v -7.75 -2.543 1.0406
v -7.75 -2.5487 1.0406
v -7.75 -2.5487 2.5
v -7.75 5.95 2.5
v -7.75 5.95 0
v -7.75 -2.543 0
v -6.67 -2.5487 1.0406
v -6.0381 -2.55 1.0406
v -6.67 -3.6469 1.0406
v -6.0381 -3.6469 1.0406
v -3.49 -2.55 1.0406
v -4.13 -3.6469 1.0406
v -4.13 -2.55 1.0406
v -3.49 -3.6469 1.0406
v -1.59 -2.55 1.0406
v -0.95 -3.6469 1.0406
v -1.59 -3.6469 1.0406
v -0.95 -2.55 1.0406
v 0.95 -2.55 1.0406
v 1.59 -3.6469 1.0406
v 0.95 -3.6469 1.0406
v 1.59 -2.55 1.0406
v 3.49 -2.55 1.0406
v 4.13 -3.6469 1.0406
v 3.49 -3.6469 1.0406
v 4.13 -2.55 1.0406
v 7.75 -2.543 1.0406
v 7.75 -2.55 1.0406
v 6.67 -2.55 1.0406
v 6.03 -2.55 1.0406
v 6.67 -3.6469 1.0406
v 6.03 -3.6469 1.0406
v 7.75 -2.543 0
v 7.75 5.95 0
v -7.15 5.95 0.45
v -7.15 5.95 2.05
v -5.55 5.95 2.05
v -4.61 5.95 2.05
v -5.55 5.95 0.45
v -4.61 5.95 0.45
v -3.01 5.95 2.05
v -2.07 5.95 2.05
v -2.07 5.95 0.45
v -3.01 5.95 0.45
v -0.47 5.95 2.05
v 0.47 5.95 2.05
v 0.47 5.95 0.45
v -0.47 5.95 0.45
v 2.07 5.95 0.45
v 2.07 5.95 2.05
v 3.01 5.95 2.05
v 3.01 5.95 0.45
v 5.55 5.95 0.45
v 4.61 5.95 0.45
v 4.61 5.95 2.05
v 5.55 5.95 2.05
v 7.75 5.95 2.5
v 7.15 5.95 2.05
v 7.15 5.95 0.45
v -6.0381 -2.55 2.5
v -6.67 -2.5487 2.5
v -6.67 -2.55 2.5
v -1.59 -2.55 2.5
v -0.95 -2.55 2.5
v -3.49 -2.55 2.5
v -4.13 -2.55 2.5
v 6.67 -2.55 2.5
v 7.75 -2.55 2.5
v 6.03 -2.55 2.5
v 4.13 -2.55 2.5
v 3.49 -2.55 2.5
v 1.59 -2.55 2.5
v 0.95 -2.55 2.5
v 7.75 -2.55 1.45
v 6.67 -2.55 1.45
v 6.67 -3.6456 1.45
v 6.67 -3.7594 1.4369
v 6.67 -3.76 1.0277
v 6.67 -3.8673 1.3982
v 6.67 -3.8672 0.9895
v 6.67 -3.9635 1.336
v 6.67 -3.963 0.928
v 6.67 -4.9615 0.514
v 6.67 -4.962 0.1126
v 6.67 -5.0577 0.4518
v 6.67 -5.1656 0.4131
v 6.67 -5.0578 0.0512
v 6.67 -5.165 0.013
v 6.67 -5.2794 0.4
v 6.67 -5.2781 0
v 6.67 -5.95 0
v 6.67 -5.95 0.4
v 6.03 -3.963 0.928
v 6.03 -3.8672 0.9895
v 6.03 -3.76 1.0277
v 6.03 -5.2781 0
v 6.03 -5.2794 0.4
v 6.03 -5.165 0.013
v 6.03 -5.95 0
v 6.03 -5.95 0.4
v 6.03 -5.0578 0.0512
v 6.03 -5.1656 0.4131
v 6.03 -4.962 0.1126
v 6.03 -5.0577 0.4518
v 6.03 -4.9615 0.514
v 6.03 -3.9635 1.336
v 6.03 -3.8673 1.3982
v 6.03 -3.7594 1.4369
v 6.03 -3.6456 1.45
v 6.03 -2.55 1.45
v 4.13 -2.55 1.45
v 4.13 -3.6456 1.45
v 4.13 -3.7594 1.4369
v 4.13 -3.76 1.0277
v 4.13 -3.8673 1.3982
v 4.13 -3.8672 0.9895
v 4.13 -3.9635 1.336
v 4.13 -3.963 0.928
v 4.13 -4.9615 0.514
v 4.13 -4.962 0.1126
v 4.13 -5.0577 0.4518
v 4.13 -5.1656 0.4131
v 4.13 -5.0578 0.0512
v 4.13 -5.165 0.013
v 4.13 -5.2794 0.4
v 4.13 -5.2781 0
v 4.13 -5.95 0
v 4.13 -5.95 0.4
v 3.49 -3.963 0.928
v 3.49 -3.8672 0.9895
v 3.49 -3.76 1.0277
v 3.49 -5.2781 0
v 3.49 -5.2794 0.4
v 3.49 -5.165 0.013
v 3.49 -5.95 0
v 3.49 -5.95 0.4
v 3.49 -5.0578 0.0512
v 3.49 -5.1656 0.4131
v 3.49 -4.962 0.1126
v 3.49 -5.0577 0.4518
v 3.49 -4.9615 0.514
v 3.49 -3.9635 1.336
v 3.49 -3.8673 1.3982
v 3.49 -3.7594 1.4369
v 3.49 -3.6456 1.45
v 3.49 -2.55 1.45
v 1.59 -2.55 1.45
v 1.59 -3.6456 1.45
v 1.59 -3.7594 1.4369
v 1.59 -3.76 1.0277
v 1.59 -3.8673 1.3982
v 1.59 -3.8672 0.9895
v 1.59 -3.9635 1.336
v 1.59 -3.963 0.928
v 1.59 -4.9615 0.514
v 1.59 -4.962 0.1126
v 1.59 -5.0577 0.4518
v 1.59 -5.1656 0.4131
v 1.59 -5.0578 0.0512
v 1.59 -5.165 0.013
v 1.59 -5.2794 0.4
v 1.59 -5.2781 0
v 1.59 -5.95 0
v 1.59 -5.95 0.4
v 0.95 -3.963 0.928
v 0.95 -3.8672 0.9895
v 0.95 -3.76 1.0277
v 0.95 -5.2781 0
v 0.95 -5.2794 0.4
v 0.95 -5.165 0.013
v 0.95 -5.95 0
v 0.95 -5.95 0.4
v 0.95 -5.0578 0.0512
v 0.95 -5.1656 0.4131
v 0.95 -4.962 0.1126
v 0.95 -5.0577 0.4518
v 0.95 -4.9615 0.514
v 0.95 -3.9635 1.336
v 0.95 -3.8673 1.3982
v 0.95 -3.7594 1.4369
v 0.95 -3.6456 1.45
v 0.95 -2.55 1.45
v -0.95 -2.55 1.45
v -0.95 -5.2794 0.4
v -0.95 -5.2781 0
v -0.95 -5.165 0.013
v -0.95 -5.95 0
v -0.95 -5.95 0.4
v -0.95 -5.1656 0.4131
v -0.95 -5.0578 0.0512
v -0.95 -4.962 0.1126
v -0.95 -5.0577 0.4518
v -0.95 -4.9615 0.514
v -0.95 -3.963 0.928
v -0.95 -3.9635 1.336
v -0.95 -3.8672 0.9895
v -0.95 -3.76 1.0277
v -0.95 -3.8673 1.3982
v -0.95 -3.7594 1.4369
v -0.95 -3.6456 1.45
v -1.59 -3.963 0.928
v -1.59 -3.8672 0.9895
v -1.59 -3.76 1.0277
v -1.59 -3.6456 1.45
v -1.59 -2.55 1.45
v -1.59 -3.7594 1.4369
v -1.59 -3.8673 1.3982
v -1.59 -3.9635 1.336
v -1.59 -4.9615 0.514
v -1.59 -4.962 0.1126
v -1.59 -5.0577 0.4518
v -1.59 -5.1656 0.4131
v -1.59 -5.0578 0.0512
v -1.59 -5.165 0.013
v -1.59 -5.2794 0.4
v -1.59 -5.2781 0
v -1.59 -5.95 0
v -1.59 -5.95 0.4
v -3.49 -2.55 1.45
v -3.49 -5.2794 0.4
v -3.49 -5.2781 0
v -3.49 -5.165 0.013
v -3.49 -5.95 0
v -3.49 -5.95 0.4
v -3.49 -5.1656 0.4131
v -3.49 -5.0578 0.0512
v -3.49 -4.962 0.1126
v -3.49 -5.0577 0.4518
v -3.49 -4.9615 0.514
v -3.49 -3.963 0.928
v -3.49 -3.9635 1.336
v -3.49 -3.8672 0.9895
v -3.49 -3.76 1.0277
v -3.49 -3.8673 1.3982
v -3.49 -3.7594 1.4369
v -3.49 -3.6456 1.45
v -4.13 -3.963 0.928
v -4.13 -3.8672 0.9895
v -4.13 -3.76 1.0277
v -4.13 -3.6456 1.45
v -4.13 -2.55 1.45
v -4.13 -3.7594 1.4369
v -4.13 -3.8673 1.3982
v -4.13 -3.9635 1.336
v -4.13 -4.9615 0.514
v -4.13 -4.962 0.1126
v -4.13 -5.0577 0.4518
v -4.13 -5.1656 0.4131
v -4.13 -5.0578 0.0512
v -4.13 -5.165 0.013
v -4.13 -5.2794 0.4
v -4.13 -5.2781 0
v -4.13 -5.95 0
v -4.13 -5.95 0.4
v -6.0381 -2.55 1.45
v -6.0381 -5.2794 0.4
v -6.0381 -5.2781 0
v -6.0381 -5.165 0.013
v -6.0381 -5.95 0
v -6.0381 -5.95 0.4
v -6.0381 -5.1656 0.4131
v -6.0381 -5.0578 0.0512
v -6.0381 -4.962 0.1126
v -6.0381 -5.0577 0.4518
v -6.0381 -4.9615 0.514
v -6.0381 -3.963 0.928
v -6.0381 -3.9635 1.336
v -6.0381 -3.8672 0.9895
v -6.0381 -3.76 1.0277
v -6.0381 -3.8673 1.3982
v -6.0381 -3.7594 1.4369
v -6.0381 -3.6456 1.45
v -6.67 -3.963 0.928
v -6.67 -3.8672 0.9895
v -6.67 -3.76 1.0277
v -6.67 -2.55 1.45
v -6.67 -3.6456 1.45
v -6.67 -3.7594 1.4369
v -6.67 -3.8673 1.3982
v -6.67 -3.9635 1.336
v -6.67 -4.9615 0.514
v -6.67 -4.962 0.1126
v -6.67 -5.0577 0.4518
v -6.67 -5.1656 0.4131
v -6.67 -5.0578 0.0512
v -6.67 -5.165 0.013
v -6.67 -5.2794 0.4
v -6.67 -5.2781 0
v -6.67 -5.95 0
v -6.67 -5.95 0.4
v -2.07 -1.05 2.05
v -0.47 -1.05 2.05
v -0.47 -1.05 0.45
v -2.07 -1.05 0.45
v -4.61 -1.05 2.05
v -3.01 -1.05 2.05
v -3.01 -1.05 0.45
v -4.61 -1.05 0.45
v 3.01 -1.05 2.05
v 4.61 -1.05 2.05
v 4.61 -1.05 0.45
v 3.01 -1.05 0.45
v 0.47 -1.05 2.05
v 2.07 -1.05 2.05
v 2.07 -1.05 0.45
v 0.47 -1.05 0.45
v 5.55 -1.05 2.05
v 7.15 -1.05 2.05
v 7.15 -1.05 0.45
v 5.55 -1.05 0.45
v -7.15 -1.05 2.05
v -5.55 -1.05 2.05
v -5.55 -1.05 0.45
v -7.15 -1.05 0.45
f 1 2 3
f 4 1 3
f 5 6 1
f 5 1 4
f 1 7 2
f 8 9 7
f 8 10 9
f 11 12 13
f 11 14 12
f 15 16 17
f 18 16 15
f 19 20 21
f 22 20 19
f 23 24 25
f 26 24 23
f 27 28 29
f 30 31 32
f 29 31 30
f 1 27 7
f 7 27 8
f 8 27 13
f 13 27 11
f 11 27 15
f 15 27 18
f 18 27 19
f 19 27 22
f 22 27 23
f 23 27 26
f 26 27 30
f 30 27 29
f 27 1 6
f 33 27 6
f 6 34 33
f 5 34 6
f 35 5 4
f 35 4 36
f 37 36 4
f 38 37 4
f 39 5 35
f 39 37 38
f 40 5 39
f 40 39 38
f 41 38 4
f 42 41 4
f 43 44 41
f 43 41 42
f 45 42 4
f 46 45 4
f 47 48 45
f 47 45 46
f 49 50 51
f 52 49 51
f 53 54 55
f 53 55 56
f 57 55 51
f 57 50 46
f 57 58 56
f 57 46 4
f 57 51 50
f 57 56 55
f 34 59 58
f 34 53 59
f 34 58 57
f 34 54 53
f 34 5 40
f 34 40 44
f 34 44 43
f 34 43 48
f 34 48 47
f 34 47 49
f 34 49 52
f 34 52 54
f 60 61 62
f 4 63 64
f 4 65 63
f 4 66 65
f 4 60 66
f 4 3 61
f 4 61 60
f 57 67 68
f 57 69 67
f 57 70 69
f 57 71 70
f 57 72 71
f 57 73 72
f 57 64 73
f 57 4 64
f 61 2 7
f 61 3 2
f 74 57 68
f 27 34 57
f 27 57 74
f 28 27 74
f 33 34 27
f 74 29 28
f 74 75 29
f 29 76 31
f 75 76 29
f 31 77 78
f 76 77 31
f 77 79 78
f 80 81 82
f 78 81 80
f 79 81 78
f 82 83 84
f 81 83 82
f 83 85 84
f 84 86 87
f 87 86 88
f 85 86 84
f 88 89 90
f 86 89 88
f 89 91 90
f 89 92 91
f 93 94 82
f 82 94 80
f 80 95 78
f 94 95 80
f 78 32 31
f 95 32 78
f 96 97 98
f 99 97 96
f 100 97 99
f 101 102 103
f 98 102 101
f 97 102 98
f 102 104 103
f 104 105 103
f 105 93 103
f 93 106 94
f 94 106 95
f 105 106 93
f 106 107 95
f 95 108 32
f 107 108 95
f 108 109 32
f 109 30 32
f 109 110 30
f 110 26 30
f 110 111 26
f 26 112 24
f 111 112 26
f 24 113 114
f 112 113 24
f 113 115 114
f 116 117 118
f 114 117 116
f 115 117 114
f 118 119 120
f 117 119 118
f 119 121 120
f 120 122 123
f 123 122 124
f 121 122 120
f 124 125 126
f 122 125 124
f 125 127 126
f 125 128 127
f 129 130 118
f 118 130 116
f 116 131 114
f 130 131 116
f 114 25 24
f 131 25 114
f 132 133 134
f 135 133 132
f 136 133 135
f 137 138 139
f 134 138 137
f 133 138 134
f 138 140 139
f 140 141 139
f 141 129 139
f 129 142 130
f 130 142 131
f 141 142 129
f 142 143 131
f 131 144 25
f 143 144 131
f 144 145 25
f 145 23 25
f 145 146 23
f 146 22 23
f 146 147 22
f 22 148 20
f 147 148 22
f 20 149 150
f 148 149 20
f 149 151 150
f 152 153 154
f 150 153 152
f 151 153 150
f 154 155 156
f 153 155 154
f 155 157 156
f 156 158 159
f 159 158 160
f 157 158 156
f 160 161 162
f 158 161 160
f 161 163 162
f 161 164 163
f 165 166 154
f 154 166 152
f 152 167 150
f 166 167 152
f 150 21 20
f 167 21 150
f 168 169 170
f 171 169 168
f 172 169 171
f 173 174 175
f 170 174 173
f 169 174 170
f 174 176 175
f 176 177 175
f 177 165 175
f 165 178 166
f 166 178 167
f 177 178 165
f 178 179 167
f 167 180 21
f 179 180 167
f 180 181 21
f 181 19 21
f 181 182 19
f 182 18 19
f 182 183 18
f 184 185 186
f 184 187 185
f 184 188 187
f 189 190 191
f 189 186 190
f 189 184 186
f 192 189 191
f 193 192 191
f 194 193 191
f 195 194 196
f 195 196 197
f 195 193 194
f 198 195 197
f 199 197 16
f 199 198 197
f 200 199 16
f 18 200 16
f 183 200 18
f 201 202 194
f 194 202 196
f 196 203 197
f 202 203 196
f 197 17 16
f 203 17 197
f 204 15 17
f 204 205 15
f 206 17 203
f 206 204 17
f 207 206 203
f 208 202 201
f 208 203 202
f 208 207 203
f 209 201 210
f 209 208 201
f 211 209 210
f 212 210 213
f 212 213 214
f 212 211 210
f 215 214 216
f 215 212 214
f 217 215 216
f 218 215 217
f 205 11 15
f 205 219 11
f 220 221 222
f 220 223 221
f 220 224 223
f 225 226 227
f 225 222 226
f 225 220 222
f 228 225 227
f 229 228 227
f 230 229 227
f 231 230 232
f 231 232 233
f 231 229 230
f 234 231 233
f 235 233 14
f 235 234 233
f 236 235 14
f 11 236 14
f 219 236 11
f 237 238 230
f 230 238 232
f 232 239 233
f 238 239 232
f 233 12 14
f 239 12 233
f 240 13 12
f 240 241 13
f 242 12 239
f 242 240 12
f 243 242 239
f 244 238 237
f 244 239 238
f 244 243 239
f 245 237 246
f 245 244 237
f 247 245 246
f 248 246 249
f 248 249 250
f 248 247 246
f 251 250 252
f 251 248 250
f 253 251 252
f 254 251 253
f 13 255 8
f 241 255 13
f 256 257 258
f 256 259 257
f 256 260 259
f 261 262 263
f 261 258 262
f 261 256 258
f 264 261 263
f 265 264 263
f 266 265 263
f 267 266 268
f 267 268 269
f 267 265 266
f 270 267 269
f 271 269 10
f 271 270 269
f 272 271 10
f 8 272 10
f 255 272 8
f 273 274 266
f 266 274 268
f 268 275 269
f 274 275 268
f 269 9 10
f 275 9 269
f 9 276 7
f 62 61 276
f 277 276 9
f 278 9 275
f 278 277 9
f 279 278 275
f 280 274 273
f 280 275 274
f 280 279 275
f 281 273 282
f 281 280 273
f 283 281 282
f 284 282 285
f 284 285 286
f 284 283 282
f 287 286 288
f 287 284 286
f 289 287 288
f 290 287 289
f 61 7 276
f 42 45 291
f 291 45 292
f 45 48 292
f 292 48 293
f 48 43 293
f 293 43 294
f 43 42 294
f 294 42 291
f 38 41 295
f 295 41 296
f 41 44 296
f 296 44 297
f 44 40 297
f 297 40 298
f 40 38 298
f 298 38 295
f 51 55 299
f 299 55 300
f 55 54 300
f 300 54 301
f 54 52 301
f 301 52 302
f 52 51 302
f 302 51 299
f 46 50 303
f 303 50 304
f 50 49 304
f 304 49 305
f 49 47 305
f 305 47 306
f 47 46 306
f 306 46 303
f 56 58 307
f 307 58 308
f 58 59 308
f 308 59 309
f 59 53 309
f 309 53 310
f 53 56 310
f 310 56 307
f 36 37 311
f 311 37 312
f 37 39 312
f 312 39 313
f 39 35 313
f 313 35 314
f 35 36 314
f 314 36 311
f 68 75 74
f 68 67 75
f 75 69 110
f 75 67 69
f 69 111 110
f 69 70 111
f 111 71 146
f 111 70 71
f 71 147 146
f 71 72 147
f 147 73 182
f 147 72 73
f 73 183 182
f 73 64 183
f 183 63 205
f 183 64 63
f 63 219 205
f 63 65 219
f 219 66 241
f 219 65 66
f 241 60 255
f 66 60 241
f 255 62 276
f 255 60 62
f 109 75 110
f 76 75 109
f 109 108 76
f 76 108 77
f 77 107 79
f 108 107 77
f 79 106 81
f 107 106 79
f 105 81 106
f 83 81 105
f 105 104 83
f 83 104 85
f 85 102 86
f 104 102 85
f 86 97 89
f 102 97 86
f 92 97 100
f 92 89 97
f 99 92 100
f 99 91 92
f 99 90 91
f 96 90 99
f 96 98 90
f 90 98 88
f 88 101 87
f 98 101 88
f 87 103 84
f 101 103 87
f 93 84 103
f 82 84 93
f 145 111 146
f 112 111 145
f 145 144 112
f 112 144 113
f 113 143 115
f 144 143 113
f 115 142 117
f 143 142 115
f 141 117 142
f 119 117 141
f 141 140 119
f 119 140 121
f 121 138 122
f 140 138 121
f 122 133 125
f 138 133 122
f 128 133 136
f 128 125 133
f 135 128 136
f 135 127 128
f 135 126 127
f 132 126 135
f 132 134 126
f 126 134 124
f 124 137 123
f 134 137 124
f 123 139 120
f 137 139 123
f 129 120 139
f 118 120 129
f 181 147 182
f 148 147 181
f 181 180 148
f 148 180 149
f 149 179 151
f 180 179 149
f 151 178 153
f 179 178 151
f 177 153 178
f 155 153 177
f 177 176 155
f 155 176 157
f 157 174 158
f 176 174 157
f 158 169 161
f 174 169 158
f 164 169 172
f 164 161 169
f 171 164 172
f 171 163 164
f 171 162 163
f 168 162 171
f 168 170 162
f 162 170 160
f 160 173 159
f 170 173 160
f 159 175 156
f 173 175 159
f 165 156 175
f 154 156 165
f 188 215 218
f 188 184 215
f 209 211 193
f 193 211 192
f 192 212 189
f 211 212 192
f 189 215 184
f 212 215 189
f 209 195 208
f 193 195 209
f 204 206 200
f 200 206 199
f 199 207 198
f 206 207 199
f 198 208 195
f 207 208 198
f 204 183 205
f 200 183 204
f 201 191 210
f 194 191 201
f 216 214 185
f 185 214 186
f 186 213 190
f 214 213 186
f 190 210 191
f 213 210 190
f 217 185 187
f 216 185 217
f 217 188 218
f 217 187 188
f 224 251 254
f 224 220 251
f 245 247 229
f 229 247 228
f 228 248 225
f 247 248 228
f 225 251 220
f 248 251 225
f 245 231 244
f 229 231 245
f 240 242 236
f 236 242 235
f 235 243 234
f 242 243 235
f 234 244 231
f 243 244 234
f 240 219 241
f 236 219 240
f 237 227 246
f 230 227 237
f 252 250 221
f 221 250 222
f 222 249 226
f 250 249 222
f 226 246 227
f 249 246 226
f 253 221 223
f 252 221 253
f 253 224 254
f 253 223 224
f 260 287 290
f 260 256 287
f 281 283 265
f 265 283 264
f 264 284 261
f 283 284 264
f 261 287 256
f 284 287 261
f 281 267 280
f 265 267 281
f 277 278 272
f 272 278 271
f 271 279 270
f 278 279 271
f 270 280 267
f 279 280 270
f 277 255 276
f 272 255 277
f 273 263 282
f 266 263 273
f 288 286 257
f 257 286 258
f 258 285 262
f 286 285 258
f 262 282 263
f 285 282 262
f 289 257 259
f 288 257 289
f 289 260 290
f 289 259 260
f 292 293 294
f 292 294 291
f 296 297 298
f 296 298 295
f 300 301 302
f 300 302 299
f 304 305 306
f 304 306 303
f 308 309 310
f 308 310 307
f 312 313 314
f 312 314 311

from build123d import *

# Parameters (mm, degrees)
SKETCH003_AS_DRAWN_W                      = 1.6
SKETCH003_AS_DRAWN_H                      = 1.6
EXTRUDE003_DEPTH                          = 7
EXTRUDE003_ONTO_SKETCH003_ROLL_ANGLE      = 90.0000000001
EXTRUDE003_ONTO_SKETCH003_PLACEMENT_ANGLE = 180
SKETCH002_W                               = 1.9
SKETCH002_H                               = 3.4
SKETCH002_W_2                             = 1.908066
SKETCH002_W_3                             = 1.08
SKETCH002_H_2                             = 3.401267
EXTRUDE002_DEPTH                          = 2.5
EXTRUDE001_DEPTH                          = 15.5
SKETCH_W                                  = 15.5
SKETCH_H                                  = 11.9
EXTRUDE_DEPTH                             = 2.5
FILLET_R                                  = 0.5


with BuildPart() as extrude003:
    # Sketch003 as drawn → Extrude003 (new)
    with BuildSketch(Plane.XY):
        with Locations((-1.27, 1.25)):
            Rectangle(SKETCH003_AS_DRAWN_W, SKETCH003_AS_DRAWN_H)
        with Locations((1.27, 1.25)):
            Rectangle(SKETCH003_AS_DRAWN_W, SKETCH003_AS_DRAWN_H)
        with Locations((3.81, 1.25)):
            Rectangle(SKETCH003_AS_DRAWN_W, SKETCH003_AS_DRAWN_H)
        with Locations((6.35, 1.25)):
            Rectangle(SKETCH003_AS_DRAWN_W, SKETCH003_AS_DRAWN_H)
        with Locations((-3.81, 1.25)):
            Rectangle(SKETCH003_AS_DRAWN_W, SKETCH003_AS_DRAWN_H)
        with Locations((-6.35, 1.25)):
            Rectangle(SKETCH003_AS_DRAWN_W, SKETCH003_AS_DRAWN_H)
    extrude(amount=-EXTRUDE003_DEPTH)


with BuildPart() as extrude003_1:
    # Extrude003 onto Sketch003 roll: moved
    add(extrude003.part.rotate(Axis((0, 0, 0), (1, 0, 0)), EXTRUDE003_ONTO_SKETCH003_ROLL_ANGLE))


with BuildPart() as extrude003_2:
    # Extrude003 onto Sketch003 placement: moved
    add(extrude003_1.part.moved(Location((0, 5.95, 0))).rotate(Axis((0, 5.95, 0), (0, 0, 1)), EXTRUDE003_ONTO_SKETCH003_PLACEMENT_ANGLE))


with BuildPart() as extrude002:
    # Sketch002 (on Face17 of Fillet) → Extrude002 (new body)
    with BuildSketch(Plane.XY.offset(2.5)):
        with Locations((-2.54, -4.25)):
            Rectangle(SKETCH002_W, SKETCH002_H)
        with Locations((0, -4.25)):
            Rectangle(SKETCH002_W, SKETCH002_H)
        with Locations((-5.084033, -4.25)):
            Rectangle(SKETCH002_W_2, SKETCH002_H)
        with Locations((5.08, -4.25)):
            Rectangle(SKETCH002_W, SKETCH002_H)
        with Locations((2.54, -4.25)):
            Rectangle(SKETCH002_W, SKETCH002_H)
        with Locations((-7.21, -4.2493665)):
            Rectangle(SKETCH002_W_3, SKETCH002_H_2)
        with Locations((7.21, -4.25)):
            Rectangle(SKETCH002_W_3, SKETCH002_H)
    extrude(amount=-EXTRUDE002_DEPTH)


with BuildPart() as extrude001:
    # Sketch001 (on Face2 of Extrude) → Extrude001 (new body)
    with BuildSketch(Plane.YZ.offset(7.75)):
        Polygon((-2.55, 2.5), (-5.95, 2.5), (-5.95, 0.4), (-5.1, 0.4), (-3.825, 1.45), (-2.55, 1.45), align=None)
        Polygon((-2.542972, 1.040645), (-3.825, 1.040645), (-5.1, 0), (-2.542972, 0), align=None)
    extrude(amount=-EXTRUDE001_DEPTH)


with BuildPart() as cut002:
    # Sketch → Extrude (new body)
    with BuildSketch(Plane.XY):
        Rectangle(SKETCH_W, SKETCH_H)
    extrude(amount=EXTRUDE_DEPTH)

    # Cut: cut Extrude001
    add(extrude001.part, mode=Mode.SUBTRACT)

    # Fillet
    fillet_edges = [cut002.edges().sort_by_distance(p)[0] for p in [
        (0, -5.1, 0),
        (0, -3.825, 1.040645),
        (0, -3.825, 1.45),
        (0, -5.1, 0.4),
    ]]
    fillet(fillet_edges, radius=FILLET_R)

    # Cut001: cut Extrude002
    add(extrude002.part, mode=Mode.SUBTRACT)

    # Cut002: cut Extrude003
    add(extrude003_2.part, mode=Mode.SUBTRACT)


solid = cut002.part
